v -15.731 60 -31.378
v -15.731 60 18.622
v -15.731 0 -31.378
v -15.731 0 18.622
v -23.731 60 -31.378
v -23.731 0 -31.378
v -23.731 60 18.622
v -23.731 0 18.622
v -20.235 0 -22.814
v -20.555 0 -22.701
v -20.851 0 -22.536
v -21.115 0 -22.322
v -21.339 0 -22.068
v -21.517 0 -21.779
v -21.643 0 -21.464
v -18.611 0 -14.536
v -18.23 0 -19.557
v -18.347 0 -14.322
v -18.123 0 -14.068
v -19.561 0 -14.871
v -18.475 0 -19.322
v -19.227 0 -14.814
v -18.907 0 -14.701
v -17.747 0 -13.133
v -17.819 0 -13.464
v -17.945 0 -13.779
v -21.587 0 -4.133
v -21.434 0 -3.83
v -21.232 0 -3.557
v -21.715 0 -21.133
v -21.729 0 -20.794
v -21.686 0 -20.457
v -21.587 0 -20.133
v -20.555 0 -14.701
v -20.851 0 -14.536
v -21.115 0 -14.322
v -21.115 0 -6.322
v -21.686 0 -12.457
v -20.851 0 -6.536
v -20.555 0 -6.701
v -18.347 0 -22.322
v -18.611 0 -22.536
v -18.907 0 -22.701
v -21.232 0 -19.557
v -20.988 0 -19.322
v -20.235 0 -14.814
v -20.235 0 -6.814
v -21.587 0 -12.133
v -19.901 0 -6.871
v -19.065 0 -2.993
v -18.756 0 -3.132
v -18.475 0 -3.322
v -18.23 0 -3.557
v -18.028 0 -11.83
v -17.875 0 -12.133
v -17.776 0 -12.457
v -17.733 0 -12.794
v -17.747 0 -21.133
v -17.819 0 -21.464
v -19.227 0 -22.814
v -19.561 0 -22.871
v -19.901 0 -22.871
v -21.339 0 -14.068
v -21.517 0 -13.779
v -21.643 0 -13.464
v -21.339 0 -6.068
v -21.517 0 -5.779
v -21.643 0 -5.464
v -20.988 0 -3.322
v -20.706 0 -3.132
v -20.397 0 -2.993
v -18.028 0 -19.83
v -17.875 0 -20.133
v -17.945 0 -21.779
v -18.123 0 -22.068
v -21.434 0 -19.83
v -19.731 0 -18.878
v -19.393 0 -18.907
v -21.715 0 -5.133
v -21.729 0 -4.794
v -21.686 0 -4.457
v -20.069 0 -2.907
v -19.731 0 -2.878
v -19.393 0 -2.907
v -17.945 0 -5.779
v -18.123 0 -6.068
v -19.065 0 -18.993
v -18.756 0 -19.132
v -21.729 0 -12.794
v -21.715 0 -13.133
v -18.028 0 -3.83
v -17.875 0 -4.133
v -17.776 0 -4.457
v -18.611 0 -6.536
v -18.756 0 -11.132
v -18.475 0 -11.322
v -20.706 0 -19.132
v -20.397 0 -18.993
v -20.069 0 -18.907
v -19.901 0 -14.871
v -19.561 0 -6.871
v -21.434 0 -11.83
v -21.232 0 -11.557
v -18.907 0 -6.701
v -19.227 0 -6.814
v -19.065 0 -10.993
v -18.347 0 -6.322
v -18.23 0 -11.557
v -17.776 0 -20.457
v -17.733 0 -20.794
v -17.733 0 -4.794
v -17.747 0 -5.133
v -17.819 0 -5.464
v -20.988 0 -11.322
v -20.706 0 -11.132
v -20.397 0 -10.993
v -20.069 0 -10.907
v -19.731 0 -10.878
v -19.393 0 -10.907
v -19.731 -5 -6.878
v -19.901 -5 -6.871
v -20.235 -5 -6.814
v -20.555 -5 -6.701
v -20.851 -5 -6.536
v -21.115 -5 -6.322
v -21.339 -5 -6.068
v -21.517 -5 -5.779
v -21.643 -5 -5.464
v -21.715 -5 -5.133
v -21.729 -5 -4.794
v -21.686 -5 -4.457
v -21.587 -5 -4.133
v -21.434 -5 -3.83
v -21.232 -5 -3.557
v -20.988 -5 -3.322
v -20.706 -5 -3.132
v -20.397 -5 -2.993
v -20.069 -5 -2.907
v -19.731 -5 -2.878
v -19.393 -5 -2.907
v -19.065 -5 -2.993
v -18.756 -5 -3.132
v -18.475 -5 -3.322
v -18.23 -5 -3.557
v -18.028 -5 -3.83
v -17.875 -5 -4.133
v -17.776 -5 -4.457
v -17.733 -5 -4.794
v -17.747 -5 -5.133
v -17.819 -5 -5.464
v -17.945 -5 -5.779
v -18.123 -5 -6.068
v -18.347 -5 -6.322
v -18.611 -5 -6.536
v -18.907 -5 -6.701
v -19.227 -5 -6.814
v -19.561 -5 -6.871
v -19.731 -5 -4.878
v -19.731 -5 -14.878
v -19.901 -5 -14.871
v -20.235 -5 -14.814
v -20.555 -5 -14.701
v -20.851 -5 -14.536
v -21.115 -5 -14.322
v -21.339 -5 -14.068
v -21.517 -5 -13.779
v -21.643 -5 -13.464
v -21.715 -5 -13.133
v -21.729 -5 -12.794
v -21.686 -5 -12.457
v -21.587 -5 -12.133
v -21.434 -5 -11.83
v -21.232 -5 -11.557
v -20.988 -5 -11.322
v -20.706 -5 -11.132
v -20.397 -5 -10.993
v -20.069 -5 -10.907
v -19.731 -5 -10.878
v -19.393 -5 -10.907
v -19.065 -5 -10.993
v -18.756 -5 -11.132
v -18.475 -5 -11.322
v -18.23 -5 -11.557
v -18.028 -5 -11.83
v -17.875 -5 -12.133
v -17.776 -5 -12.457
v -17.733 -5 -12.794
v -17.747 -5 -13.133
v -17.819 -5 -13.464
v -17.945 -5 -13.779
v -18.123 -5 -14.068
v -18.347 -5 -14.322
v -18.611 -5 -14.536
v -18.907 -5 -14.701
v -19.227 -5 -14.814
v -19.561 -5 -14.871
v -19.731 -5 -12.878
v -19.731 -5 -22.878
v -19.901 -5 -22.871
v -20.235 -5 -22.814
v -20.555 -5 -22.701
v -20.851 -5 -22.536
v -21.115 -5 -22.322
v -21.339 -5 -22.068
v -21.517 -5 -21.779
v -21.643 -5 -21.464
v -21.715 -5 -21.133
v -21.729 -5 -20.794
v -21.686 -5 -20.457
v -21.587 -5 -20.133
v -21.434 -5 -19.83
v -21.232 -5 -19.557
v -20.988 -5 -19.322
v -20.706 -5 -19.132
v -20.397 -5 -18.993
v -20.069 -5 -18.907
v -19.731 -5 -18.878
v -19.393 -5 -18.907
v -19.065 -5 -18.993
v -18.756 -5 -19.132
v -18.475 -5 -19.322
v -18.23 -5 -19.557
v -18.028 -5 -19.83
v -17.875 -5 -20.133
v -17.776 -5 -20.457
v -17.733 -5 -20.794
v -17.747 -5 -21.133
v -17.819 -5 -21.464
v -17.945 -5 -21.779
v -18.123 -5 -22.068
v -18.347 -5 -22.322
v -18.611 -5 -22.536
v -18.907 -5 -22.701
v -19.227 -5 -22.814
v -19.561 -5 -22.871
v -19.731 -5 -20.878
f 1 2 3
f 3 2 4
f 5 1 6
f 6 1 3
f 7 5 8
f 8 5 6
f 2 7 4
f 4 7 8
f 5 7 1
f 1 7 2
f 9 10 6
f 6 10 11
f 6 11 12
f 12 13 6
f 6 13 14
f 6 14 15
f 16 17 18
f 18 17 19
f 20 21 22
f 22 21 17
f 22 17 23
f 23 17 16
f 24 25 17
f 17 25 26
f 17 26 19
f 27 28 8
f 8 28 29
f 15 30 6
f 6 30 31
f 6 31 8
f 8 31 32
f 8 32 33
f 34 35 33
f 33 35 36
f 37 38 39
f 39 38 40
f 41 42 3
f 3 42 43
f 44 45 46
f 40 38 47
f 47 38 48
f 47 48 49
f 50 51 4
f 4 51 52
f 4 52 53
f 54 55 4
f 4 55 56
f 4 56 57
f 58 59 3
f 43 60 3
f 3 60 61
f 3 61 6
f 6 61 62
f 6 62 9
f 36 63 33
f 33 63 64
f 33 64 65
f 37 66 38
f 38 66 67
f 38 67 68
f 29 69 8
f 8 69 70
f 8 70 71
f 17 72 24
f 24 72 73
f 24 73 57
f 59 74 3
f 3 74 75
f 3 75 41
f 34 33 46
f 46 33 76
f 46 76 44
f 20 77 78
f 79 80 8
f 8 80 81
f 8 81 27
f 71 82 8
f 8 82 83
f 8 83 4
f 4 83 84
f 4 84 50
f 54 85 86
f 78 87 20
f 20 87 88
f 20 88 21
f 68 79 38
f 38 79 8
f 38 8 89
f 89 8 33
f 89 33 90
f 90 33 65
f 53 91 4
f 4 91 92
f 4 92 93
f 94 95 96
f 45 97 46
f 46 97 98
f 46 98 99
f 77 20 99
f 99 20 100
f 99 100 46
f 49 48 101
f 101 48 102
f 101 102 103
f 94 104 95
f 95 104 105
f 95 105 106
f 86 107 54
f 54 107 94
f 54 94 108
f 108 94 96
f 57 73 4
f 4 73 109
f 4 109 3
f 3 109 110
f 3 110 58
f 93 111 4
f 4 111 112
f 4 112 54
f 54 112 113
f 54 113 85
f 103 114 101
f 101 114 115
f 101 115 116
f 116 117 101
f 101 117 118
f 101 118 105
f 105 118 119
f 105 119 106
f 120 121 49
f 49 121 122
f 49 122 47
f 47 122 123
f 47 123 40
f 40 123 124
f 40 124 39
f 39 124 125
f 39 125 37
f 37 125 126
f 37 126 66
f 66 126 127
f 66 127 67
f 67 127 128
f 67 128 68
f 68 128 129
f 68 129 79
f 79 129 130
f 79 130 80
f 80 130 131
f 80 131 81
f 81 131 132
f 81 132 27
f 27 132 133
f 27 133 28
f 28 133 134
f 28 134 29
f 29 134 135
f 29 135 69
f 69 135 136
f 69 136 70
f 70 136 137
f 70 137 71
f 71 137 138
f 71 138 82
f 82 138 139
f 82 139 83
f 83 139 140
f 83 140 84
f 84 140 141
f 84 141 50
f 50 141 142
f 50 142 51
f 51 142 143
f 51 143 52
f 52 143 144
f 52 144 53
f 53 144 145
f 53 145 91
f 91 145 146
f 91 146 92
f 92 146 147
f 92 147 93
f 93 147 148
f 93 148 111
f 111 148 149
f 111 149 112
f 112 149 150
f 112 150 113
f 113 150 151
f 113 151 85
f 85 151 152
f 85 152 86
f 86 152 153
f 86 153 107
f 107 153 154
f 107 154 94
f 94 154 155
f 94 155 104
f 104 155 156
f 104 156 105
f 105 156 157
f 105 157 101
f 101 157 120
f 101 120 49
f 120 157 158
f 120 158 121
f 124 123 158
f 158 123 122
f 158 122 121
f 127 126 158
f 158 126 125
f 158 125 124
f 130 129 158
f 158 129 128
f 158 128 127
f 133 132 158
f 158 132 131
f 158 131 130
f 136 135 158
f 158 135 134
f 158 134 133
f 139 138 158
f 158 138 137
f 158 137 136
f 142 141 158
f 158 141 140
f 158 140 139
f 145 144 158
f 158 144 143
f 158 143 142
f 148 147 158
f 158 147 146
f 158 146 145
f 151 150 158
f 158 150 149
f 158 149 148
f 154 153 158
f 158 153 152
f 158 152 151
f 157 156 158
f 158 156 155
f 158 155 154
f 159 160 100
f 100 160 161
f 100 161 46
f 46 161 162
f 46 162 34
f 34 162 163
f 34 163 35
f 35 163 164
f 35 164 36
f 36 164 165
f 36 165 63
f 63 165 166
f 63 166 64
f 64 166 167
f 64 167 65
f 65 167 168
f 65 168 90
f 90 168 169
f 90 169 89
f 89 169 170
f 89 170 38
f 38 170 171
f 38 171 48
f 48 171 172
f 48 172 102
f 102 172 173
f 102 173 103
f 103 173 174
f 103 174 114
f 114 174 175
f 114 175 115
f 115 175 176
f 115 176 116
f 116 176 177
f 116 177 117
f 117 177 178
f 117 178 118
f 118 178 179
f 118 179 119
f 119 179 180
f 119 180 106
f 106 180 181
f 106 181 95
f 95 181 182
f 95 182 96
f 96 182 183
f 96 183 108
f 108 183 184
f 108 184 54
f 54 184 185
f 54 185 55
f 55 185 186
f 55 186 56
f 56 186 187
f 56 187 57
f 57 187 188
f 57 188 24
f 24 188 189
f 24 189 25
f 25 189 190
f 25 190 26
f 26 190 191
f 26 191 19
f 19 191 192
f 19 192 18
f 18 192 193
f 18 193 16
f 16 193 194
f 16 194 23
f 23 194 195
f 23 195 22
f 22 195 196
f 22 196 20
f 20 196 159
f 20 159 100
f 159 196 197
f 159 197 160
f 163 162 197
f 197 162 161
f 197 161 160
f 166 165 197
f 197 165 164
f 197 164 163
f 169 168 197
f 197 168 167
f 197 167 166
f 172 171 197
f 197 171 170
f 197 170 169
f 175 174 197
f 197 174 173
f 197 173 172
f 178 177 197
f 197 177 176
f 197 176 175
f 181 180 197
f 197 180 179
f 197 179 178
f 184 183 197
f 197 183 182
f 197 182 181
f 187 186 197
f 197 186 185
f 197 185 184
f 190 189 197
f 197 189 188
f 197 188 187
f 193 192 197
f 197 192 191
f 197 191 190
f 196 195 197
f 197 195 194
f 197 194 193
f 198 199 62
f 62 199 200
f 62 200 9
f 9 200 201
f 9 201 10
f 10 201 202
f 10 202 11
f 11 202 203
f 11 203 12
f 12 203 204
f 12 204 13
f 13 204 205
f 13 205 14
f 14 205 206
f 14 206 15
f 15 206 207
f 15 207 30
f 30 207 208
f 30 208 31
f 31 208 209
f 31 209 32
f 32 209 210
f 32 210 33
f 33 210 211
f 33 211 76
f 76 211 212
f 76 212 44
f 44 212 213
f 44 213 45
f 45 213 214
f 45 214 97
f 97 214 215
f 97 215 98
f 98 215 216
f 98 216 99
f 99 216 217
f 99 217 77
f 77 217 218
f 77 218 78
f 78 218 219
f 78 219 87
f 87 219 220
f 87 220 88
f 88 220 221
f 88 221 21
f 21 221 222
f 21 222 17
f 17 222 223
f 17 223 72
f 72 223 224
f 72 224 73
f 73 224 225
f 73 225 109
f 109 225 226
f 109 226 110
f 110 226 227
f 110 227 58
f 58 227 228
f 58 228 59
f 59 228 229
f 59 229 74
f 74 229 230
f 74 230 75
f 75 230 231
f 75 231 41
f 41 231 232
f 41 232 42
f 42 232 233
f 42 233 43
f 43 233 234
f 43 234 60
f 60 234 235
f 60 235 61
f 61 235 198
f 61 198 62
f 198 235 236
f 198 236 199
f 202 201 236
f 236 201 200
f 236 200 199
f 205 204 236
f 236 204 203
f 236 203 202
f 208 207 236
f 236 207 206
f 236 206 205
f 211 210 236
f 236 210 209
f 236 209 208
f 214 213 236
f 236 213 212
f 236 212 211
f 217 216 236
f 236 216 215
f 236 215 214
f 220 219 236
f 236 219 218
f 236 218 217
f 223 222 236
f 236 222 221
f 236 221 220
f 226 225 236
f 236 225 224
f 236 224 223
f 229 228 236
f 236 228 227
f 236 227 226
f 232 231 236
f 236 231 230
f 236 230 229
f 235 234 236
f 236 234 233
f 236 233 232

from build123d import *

# Parameters (mm, degrees)
SKETCH2_W           = 8
SKETCH2_H           = 50
SKETCH2_R           = 2.25
BOSS_EXTRUDE1_DEPTH = 60
SKETCH3_R           = 2
BOSS_EXTRUDE2_DEPTH = 5


with BuildPart() as part:
    # Sketch2 → Boss-Extrude1 (new body)
    # profile 1 of 4: a face of its own
    with BuildSketch(Plane(origin=(0, 0, 0), x_dir=(1, 0, 0), z_dir=(0, 1, 0))):
        with Locations((-19.731065886, 6.378485879)):
            Rectangle(SKETCH2_W, SKETCH2_H)
        with Locations((-19.731065886, 20.878485879)):
            Circle(SKETCH2_R, mode=Mode.SUBTRACT)
        with Locations((-19.731065886, 12.878485879)):
            Circle(SKETCH2_R, mode=Mode.SUBTRACT)
        with Locations((-19.731065886, 4.878485879)):
            Circle(SKETCH2_R, mode=Mode.SUBTRACT)
    # profile 2 of 4: a face of its own
    with BuildSketch(Plane(origin=(0, 0, 0), x_dir=(1, 0, 0), z_dir=(0, 1, 0))):
        with Locations((-19.731065886, 20.878485879)):
            Circle(SKETCH2_R)
    # profile 3 of 4: a face of its own
    with BuildSketch(Plane(origin=(0, 0, 0), x_dir=(1, 0, 0), z_dir=(0, 1, 0))):
        with Locations((-19.731065886, 12.878485879)):
            Circle(SKETCH2_R)
    # profile 4 of 4: a face of its own
    with BuildSketch(Plane(origin=(0, 0, 0), x_dir=(1, 0, 0), z_dir=(0, 1, 0))):
        with Locations((-19.731065886, 4.878485879)):
            Circle(SKETCH2_R)
    extrude(amount=BOSS_EXTRUDE1_DEPTH)

    # Sketch3 → Boss-Extrude2 (add)
    with BuildSketch(Plane.XZ):
        with Locations(Location((-19.731065886, -4.878485879, 0), (0, 0, 90))):
            Circle(SKETCH3_R)
        with Locations(Location((-19.731065886, -12.878485879, 0), (0, 0, 90))):
            Circle(SKETCH3_R)
        with Locations(Location((-19.731065886, -20.878485879, 0), (0, 0, 90))):
            Circle(SKETCH3_R)
    extrude(amount=BOSS_EXTRUDE2_DEPTH)


solid = part.part
